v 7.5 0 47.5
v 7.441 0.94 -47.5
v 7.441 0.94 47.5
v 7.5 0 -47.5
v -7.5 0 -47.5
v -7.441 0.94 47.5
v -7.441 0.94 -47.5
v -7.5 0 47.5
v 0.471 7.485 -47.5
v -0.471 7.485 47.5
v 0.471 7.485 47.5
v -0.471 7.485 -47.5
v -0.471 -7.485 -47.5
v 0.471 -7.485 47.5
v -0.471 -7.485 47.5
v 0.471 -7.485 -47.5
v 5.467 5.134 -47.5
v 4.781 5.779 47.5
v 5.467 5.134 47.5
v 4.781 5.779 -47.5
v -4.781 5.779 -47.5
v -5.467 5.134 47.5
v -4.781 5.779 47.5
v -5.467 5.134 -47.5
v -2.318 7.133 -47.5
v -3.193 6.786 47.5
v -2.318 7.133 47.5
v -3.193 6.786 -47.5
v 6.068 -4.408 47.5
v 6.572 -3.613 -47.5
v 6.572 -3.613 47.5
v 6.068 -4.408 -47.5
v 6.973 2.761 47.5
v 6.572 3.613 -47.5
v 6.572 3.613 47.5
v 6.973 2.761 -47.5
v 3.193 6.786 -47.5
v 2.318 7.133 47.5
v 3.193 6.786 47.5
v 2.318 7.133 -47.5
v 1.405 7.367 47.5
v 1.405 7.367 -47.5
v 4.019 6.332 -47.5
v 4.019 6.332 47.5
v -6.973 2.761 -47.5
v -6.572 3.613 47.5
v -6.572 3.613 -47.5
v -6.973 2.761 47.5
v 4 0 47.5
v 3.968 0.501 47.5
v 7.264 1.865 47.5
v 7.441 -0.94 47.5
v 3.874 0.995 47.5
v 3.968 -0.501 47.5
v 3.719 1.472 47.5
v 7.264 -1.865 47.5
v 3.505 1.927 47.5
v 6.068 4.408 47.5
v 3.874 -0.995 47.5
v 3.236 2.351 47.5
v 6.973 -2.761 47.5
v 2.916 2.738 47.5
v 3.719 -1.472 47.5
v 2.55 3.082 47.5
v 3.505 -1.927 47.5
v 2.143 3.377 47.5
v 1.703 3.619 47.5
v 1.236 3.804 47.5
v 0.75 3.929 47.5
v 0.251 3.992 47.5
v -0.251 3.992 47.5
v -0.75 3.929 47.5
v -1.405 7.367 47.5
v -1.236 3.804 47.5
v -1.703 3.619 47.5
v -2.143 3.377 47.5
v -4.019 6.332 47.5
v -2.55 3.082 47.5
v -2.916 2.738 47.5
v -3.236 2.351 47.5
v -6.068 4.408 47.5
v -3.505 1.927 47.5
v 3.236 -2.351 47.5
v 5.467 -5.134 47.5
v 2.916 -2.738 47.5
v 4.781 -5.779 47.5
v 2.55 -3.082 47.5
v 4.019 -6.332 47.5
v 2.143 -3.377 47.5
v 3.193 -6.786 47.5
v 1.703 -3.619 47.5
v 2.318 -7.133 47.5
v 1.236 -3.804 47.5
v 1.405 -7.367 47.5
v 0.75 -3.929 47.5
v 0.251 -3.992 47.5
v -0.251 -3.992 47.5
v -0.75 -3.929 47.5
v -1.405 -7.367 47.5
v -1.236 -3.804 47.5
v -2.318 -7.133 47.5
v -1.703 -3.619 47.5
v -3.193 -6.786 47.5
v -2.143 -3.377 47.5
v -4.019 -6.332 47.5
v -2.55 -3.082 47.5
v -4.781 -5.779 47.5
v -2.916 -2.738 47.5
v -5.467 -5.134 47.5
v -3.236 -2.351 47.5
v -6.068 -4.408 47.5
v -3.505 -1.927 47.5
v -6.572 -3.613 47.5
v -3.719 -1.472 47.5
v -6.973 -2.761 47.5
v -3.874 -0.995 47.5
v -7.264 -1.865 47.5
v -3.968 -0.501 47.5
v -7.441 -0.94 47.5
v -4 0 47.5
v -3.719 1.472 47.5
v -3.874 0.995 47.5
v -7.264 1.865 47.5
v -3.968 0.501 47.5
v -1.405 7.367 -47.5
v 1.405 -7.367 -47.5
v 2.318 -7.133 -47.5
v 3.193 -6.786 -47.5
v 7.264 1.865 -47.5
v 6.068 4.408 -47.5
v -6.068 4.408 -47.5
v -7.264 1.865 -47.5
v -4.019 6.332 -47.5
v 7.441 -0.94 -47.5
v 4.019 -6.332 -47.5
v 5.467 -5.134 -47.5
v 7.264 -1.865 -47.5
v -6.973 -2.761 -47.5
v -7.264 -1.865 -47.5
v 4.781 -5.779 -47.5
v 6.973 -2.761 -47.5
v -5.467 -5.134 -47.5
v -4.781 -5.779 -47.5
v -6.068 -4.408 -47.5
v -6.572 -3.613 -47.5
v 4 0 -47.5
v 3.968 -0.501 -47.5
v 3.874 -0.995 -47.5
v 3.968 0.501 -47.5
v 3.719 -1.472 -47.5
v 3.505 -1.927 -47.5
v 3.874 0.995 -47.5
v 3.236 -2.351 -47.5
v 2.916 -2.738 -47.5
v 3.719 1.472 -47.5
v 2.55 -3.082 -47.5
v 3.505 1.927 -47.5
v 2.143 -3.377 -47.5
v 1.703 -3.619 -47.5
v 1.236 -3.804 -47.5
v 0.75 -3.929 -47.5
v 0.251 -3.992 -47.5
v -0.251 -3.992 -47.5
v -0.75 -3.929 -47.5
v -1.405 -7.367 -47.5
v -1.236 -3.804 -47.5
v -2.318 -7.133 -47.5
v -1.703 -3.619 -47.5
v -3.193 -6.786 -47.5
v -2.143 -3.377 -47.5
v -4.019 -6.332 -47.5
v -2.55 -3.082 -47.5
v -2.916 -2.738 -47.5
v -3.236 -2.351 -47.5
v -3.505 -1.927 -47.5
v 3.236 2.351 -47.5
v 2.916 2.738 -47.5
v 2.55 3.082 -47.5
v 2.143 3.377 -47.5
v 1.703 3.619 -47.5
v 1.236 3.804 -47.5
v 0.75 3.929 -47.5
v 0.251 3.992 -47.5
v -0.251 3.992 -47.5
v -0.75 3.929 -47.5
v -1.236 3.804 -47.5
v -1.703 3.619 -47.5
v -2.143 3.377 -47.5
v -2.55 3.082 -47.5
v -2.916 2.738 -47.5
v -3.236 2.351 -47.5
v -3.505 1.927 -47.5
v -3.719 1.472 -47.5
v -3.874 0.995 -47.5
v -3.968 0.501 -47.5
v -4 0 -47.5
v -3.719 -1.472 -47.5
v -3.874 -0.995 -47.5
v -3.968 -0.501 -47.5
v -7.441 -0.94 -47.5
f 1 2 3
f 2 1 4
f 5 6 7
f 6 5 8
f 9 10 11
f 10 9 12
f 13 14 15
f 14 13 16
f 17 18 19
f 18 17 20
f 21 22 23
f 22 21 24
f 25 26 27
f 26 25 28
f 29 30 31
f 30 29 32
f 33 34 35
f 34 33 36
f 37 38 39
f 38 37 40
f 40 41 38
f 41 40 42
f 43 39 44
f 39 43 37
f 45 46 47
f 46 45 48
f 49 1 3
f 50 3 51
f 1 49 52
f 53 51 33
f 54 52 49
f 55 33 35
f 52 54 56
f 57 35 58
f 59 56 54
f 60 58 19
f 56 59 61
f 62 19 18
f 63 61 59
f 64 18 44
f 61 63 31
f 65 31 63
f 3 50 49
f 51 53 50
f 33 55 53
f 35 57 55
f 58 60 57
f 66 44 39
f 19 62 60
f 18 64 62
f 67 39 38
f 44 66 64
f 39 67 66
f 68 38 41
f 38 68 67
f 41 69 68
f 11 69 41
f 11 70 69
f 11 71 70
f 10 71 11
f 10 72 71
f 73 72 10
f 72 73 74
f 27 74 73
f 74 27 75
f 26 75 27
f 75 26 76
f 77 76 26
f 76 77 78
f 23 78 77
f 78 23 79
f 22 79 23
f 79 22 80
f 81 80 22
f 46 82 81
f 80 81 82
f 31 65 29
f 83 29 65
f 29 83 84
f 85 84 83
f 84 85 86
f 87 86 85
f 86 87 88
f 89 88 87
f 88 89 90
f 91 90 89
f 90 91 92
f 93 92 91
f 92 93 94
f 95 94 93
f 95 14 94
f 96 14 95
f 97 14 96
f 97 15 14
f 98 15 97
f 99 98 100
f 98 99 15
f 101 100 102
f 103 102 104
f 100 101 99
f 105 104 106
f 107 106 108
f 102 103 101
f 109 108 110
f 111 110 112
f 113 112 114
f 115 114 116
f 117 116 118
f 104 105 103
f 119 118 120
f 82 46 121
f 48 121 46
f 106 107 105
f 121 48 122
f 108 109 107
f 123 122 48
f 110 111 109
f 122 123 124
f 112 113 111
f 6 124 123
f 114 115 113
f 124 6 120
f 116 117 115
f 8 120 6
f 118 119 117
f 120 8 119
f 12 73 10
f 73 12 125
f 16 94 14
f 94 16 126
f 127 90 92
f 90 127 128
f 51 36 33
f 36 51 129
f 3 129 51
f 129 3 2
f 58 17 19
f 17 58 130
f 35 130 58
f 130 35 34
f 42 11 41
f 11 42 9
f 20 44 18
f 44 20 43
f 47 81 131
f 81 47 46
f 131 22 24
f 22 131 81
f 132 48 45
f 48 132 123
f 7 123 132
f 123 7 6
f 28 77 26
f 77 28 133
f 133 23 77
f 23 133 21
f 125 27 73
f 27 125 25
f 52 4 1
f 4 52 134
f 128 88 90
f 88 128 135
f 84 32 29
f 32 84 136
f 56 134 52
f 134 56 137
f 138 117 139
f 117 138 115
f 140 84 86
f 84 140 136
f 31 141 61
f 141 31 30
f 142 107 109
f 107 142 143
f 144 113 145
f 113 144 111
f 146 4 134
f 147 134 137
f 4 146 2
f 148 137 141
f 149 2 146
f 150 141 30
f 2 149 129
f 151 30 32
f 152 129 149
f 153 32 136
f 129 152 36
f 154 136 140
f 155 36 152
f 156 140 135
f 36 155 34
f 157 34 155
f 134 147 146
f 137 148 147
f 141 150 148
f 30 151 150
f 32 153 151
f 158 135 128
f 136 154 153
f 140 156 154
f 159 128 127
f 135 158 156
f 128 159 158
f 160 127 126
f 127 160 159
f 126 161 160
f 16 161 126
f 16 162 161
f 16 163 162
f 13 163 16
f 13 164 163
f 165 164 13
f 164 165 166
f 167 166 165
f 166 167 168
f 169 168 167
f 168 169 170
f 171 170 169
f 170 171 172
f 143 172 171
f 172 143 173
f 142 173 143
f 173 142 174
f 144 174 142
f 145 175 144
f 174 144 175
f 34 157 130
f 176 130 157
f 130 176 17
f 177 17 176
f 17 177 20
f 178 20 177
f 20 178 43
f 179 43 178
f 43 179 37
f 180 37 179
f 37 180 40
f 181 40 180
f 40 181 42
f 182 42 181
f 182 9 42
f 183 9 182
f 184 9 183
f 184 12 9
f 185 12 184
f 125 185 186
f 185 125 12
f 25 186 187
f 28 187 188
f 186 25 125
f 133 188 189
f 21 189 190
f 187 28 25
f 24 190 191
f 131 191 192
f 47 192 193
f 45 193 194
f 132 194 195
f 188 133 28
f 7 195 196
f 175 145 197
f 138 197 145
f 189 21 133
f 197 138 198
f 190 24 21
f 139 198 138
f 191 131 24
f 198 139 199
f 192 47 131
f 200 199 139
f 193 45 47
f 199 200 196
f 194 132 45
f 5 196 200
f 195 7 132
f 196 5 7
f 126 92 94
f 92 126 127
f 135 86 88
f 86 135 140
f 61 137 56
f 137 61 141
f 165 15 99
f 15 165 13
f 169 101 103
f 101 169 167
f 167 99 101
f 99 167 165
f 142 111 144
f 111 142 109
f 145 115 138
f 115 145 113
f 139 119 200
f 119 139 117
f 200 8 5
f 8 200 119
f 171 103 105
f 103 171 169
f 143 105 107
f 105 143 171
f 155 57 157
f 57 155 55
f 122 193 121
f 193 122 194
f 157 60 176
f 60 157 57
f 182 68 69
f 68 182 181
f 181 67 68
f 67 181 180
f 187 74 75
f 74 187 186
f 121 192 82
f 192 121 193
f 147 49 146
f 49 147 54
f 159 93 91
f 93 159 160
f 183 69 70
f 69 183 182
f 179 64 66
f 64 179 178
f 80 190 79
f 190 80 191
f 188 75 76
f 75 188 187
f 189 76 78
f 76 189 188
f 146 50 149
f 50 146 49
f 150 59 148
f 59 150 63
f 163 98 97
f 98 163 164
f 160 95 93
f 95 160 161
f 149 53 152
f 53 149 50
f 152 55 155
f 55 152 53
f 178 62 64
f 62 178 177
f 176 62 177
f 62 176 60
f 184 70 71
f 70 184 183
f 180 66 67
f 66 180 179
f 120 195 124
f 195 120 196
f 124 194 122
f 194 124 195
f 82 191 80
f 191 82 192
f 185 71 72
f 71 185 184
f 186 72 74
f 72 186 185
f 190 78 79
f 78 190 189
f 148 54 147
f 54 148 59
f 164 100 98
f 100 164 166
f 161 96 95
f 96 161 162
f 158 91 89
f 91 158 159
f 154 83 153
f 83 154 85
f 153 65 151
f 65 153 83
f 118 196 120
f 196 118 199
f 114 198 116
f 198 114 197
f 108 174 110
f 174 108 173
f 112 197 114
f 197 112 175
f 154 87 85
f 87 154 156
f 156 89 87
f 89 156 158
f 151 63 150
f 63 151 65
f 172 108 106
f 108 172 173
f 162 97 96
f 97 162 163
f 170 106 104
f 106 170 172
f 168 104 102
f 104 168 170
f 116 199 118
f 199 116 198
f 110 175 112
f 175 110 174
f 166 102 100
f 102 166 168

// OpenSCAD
$fn = 50;


difference() {
	union() {
		translate(v = [0, 0, -47.5000000000]) {
			cylinder(h = 95, r = 7.5000000000);
		}
	}
	union() {
		translate(v = [0, 0, -100.0000000000]) {
			cylinder(h = 200, r = 4.0000000000);
		}
	}
}
